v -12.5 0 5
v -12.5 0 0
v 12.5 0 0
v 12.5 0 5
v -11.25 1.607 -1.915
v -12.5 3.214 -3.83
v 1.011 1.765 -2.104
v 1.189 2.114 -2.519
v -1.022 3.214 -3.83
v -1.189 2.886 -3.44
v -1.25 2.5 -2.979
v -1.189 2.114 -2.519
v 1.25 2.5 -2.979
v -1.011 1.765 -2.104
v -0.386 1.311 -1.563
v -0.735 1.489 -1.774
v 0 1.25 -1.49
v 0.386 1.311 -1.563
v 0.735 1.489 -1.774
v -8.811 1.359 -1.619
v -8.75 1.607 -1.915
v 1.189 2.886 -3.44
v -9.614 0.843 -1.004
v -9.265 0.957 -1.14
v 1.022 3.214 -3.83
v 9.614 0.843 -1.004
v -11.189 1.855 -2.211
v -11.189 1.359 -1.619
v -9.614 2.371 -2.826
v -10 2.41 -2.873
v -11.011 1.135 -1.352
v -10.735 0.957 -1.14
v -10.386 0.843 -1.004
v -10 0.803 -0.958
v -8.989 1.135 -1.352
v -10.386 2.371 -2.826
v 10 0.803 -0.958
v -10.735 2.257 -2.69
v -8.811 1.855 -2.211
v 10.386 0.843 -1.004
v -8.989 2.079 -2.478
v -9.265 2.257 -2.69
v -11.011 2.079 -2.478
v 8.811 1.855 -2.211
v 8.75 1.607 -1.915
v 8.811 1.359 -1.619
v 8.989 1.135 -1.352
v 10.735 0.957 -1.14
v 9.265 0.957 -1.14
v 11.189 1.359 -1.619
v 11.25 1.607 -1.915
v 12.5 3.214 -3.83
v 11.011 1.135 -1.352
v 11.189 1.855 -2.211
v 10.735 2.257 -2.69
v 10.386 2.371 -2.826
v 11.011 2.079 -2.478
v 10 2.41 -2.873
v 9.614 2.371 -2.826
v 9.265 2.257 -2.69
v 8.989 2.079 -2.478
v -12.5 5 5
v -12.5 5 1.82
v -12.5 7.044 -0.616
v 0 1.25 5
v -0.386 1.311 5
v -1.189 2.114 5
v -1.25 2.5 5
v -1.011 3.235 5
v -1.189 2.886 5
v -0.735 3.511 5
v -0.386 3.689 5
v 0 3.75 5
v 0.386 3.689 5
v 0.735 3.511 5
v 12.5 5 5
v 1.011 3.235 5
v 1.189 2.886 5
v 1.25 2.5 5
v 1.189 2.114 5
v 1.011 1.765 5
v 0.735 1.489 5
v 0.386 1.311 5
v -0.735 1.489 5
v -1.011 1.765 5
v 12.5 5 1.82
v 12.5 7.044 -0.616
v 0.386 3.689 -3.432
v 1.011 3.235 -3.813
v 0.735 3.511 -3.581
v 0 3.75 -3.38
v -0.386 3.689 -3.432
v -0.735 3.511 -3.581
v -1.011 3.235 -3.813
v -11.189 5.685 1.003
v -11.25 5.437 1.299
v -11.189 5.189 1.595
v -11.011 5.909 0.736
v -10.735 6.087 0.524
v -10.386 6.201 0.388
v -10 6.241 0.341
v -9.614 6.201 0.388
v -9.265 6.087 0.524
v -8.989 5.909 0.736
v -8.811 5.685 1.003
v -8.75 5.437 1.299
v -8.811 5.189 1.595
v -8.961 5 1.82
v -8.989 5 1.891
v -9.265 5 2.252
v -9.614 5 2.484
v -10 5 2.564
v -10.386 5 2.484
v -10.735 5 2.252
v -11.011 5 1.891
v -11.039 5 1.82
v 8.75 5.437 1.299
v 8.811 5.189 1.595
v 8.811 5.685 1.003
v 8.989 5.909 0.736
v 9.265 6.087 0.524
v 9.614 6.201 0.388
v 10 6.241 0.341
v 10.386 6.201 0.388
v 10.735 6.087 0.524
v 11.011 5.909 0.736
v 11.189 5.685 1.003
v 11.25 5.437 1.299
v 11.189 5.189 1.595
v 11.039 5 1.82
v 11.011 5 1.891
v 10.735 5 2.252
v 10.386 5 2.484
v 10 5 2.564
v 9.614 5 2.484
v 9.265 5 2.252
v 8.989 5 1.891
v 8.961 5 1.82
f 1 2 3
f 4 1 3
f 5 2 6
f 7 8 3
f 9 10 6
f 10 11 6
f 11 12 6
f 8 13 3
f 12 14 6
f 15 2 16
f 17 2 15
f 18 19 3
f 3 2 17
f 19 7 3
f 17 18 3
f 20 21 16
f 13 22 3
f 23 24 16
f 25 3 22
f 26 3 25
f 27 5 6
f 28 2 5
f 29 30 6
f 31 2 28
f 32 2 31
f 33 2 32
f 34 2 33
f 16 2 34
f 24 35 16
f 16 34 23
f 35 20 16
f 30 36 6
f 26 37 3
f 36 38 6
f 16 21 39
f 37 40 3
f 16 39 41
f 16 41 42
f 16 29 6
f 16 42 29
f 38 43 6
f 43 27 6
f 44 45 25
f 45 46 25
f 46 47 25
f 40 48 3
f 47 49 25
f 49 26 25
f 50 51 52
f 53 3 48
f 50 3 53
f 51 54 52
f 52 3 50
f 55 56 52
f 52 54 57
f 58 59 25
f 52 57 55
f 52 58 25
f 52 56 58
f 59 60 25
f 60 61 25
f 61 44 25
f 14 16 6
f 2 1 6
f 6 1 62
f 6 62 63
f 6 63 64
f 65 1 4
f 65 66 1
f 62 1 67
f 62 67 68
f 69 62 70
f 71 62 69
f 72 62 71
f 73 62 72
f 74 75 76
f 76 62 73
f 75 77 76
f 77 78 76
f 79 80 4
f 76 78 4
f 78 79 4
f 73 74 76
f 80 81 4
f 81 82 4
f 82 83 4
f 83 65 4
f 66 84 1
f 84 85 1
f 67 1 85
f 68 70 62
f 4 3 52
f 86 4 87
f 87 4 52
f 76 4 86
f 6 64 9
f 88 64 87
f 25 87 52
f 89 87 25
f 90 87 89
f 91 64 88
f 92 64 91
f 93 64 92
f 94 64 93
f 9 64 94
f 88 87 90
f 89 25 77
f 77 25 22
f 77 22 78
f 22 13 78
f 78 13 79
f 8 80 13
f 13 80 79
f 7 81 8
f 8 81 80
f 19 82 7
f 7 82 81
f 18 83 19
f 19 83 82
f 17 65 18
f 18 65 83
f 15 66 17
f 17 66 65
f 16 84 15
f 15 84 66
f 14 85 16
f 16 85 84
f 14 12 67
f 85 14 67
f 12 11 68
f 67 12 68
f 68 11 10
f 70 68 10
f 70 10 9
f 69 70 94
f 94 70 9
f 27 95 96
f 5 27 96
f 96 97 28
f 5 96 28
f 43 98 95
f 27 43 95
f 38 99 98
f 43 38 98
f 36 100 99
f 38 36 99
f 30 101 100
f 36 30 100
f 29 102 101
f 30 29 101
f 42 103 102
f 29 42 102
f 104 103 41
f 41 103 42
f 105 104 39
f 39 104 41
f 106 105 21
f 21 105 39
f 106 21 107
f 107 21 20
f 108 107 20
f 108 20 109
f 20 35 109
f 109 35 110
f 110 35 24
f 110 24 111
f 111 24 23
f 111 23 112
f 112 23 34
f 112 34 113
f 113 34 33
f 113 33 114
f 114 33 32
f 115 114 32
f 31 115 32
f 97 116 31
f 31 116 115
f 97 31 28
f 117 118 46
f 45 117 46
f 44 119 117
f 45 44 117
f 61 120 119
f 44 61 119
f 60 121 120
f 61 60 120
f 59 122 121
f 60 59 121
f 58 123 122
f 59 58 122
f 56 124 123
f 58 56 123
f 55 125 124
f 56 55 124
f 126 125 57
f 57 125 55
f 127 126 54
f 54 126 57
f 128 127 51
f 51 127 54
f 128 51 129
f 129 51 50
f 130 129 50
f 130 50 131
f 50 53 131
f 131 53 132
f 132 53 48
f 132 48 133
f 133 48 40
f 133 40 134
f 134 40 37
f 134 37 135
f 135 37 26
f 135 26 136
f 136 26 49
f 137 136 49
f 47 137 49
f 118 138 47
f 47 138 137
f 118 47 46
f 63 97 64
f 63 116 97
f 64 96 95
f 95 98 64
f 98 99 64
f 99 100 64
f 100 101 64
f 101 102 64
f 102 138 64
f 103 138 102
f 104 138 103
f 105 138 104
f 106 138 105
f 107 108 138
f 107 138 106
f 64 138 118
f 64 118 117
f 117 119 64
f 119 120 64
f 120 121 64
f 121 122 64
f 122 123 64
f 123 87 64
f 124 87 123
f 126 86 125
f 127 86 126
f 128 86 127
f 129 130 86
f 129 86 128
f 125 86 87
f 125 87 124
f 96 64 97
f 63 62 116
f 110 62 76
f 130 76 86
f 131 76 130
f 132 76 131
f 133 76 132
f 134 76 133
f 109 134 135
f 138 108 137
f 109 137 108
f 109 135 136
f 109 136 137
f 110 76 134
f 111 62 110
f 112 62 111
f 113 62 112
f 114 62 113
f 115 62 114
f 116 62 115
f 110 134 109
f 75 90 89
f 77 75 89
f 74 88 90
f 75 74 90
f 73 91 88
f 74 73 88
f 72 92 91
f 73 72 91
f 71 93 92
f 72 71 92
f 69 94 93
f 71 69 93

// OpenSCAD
platform_hole = 2.5;
fan_hole = 2.5;
fan_hole_distance = 20;
fan_angle = 40;
fan_width = 25;
$fn=20;
fan_hole_radius = fan_hole / 2;

module fan_bar() {
	difference() {
		translate([-fan_width/2,0,-5])
			cube([fan_width, 5,5]);		
		rotate([90,0,0])
			for (i = [-fan_hole_distance/2,fan_hole_distance/2]){
				translate([i,-2.5,-4])
					cylinder(r=fan_hole_radius,h=10, center= true);			
				
			}
	}
}

module unit(){
	 difference() {
		union() {
			translate([-fan_width/2,0,0]) 
				cube([fan_width,5,5]);
			rotate([fan_angle,0,0])
				translate([0,2.5,-2.5]) cube([fan_width,5,5], center = true);
		}

		rotate([fan_angle,0,0]) {
			translate([+fan_hole_distance/2,4,-2.5]) rotate([90,0,0]) cylinder(r=fan_hole_radius,h=10, center= true);			
			translate([-fan_hole_distance/2,4,-2.5]) rotate([90,0,0]) cylinder(r=fan_hole_radius,h=10, center= true);			
		}

		translate([0,2.5,5.5])
			mirror([0,0,1]) cylinder(r=platform_hole/2, h=10);
		
	}
}

unit();
